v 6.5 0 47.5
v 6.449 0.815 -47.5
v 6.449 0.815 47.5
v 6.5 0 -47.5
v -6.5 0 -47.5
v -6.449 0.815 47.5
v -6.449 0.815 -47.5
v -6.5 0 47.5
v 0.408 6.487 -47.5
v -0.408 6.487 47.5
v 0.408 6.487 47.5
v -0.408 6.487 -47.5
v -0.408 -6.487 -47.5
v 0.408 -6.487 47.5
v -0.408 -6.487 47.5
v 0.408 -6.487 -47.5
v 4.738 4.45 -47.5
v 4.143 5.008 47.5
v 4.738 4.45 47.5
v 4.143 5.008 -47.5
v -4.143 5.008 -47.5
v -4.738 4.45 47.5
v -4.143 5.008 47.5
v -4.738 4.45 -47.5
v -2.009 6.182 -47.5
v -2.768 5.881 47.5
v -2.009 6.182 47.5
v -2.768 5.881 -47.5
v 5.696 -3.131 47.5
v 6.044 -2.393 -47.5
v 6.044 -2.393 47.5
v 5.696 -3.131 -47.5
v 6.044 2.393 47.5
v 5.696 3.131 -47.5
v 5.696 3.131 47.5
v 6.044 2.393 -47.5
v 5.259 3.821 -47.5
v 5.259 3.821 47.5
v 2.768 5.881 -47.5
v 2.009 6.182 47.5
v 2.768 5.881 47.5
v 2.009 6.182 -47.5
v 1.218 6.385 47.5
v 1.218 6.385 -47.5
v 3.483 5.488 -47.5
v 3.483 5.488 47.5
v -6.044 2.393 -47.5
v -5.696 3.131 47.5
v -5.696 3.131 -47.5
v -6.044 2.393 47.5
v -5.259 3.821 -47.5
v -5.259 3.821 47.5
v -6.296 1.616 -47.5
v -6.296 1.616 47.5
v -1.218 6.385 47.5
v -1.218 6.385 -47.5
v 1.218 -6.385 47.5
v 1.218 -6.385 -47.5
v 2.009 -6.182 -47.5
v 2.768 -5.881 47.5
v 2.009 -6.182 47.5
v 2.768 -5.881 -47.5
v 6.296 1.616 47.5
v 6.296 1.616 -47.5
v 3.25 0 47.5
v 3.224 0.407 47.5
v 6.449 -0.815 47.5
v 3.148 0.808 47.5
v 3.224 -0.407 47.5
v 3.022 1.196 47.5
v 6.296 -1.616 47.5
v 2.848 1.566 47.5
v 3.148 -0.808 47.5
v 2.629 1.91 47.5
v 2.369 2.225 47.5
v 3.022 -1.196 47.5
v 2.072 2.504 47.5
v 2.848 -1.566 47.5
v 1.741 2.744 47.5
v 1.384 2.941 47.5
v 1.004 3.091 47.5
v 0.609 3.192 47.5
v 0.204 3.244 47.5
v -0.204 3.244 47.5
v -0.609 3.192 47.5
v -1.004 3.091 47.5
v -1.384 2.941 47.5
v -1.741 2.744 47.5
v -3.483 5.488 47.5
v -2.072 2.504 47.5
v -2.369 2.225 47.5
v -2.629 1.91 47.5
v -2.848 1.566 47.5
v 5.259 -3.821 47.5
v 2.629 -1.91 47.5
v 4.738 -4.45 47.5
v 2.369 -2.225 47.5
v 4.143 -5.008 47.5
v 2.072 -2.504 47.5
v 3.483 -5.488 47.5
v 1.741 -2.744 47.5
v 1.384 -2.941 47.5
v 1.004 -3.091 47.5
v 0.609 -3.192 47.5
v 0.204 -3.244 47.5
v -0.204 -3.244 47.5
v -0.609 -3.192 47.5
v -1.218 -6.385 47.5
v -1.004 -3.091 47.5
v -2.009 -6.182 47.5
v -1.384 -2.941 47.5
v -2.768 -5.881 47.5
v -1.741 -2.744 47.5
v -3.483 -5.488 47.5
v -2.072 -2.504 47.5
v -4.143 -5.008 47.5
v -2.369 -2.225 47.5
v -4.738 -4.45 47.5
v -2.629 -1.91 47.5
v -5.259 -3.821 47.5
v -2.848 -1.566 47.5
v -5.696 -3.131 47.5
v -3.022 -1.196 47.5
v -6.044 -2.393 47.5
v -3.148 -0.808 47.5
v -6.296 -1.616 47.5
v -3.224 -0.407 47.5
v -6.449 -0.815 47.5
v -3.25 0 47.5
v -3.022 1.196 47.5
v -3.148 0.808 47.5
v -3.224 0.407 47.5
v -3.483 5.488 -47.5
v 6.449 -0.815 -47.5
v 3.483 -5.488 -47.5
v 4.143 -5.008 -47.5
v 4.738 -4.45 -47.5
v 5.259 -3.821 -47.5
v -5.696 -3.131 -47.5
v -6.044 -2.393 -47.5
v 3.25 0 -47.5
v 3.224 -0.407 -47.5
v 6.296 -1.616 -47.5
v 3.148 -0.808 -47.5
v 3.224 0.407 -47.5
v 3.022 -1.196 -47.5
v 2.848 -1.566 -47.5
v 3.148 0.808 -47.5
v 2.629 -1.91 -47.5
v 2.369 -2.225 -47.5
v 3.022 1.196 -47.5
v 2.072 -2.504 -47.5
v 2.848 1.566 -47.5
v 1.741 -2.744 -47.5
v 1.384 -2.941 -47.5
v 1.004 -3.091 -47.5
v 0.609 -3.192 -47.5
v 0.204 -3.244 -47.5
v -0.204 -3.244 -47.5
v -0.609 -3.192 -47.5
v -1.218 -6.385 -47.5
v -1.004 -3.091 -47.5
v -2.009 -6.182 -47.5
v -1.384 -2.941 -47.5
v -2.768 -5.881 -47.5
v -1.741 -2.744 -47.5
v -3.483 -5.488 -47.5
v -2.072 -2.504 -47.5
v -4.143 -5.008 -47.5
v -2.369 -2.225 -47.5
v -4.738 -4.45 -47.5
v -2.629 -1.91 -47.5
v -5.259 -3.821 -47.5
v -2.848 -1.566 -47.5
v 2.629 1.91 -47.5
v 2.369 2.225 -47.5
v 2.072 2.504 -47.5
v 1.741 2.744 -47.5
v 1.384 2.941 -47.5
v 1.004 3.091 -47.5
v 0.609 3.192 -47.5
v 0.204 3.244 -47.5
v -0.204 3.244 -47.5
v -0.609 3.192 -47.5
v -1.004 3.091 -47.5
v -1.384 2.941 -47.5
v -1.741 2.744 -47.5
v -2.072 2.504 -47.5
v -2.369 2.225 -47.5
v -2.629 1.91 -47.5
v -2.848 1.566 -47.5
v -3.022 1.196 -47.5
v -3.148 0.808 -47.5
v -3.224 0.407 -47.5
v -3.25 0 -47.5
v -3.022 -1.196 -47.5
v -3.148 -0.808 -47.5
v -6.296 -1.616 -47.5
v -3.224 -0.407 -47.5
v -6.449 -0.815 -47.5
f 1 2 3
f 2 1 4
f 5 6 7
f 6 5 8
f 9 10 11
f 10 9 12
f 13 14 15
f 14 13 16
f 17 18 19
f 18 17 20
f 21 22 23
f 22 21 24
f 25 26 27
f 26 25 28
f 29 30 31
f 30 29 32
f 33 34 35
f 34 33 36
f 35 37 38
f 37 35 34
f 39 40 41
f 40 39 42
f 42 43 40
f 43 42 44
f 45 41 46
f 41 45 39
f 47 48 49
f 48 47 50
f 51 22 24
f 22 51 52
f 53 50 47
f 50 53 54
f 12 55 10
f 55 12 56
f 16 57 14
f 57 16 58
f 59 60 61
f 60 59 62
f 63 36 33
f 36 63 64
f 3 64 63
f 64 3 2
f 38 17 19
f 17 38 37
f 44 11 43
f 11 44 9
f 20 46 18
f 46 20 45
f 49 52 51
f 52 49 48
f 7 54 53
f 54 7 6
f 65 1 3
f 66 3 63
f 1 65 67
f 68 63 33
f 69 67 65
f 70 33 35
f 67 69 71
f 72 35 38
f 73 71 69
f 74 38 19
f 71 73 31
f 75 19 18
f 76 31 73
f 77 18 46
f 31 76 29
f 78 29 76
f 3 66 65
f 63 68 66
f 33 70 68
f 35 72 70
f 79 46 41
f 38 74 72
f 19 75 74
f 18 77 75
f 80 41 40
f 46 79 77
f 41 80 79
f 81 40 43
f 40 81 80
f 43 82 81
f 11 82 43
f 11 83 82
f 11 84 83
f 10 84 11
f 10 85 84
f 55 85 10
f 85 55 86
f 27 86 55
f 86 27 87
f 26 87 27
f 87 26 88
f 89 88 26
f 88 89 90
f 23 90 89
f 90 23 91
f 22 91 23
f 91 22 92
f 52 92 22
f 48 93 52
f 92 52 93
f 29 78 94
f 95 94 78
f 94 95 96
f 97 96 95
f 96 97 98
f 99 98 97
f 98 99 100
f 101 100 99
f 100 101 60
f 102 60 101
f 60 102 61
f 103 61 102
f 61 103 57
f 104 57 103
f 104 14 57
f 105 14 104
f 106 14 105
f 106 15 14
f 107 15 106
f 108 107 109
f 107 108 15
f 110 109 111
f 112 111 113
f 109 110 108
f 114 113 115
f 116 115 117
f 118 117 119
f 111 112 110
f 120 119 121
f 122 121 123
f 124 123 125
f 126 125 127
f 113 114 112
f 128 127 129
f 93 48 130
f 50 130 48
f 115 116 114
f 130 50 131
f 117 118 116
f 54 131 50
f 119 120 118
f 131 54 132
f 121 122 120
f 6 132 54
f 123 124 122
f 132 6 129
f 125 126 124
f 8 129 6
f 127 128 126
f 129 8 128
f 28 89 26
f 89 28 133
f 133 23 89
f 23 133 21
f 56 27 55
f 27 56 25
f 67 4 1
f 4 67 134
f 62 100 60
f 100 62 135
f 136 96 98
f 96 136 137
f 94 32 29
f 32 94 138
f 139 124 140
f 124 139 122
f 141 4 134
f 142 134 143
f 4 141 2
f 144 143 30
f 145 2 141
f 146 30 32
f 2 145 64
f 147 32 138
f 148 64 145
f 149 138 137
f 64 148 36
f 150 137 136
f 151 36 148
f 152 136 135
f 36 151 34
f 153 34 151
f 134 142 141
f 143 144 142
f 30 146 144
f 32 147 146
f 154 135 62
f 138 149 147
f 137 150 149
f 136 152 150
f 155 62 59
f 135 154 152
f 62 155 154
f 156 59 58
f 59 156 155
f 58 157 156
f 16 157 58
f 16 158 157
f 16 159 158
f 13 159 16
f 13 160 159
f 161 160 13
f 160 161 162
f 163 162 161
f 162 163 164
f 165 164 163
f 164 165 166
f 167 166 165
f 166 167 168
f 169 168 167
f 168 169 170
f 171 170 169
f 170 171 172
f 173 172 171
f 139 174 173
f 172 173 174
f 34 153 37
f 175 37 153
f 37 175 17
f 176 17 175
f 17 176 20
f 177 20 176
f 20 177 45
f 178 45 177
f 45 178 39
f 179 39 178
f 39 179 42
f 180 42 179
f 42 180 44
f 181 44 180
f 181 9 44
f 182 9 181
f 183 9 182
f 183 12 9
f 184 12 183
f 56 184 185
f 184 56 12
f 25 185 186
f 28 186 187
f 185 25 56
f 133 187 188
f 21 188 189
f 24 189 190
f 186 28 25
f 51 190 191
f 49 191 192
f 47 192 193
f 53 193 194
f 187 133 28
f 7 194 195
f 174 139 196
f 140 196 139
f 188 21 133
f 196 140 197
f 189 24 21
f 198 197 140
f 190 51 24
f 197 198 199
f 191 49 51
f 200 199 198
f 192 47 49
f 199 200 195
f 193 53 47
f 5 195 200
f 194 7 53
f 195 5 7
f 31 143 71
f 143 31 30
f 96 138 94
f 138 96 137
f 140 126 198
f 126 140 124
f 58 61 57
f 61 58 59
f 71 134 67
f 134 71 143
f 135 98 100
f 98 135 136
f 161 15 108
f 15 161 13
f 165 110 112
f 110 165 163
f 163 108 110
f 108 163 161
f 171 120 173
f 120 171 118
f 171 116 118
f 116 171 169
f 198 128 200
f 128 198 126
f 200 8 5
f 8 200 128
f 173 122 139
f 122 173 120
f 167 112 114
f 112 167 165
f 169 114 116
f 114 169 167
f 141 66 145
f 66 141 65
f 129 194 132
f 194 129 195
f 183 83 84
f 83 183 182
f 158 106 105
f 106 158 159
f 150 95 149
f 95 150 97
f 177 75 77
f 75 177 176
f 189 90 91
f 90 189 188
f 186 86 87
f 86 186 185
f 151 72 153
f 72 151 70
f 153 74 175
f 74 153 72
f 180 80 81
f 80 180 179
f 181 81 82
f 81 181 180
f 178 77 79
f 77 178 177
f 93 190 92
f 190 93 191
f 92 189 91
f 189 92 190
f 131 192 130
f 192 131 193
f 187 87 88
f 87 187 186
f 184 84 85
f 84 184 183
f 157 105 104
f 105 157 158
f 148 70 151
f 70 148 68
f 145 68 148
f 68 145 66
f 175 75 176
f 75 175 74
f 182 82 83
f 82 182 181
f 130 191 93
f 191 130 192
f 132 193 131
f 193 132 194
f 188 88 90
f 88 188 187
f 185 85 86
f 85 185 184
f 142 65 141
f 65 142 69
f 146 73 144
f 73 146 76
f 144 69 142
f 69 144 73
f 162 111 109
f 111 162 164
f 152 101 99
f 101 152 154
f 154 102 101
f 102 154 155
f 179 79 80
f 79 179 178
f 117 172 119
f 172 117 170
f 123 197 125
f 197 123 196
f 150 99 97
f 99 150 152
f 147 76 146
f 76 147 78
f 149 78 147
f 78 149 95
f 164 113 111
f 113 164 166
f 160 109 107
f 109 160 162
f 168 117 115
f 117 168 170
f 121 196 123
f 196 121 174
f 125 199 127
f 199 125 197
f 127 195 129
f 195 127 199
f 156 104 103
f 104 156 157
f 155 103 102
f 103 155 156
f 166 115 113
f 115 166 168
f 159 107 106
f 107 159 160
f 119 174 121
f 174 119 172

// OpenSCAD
$fn = 50;


difference() {
	union() {
		translate(v = [0, 0, -47.5000000000]) {
			cylinder(h = 95, r = 6.5000000000);
		}
	}
	union() {
		translate(v = [0, 0, -100.0000000000]) {
			cylinder(h = 200, r = 3.2500000000);
		}
	}
}
